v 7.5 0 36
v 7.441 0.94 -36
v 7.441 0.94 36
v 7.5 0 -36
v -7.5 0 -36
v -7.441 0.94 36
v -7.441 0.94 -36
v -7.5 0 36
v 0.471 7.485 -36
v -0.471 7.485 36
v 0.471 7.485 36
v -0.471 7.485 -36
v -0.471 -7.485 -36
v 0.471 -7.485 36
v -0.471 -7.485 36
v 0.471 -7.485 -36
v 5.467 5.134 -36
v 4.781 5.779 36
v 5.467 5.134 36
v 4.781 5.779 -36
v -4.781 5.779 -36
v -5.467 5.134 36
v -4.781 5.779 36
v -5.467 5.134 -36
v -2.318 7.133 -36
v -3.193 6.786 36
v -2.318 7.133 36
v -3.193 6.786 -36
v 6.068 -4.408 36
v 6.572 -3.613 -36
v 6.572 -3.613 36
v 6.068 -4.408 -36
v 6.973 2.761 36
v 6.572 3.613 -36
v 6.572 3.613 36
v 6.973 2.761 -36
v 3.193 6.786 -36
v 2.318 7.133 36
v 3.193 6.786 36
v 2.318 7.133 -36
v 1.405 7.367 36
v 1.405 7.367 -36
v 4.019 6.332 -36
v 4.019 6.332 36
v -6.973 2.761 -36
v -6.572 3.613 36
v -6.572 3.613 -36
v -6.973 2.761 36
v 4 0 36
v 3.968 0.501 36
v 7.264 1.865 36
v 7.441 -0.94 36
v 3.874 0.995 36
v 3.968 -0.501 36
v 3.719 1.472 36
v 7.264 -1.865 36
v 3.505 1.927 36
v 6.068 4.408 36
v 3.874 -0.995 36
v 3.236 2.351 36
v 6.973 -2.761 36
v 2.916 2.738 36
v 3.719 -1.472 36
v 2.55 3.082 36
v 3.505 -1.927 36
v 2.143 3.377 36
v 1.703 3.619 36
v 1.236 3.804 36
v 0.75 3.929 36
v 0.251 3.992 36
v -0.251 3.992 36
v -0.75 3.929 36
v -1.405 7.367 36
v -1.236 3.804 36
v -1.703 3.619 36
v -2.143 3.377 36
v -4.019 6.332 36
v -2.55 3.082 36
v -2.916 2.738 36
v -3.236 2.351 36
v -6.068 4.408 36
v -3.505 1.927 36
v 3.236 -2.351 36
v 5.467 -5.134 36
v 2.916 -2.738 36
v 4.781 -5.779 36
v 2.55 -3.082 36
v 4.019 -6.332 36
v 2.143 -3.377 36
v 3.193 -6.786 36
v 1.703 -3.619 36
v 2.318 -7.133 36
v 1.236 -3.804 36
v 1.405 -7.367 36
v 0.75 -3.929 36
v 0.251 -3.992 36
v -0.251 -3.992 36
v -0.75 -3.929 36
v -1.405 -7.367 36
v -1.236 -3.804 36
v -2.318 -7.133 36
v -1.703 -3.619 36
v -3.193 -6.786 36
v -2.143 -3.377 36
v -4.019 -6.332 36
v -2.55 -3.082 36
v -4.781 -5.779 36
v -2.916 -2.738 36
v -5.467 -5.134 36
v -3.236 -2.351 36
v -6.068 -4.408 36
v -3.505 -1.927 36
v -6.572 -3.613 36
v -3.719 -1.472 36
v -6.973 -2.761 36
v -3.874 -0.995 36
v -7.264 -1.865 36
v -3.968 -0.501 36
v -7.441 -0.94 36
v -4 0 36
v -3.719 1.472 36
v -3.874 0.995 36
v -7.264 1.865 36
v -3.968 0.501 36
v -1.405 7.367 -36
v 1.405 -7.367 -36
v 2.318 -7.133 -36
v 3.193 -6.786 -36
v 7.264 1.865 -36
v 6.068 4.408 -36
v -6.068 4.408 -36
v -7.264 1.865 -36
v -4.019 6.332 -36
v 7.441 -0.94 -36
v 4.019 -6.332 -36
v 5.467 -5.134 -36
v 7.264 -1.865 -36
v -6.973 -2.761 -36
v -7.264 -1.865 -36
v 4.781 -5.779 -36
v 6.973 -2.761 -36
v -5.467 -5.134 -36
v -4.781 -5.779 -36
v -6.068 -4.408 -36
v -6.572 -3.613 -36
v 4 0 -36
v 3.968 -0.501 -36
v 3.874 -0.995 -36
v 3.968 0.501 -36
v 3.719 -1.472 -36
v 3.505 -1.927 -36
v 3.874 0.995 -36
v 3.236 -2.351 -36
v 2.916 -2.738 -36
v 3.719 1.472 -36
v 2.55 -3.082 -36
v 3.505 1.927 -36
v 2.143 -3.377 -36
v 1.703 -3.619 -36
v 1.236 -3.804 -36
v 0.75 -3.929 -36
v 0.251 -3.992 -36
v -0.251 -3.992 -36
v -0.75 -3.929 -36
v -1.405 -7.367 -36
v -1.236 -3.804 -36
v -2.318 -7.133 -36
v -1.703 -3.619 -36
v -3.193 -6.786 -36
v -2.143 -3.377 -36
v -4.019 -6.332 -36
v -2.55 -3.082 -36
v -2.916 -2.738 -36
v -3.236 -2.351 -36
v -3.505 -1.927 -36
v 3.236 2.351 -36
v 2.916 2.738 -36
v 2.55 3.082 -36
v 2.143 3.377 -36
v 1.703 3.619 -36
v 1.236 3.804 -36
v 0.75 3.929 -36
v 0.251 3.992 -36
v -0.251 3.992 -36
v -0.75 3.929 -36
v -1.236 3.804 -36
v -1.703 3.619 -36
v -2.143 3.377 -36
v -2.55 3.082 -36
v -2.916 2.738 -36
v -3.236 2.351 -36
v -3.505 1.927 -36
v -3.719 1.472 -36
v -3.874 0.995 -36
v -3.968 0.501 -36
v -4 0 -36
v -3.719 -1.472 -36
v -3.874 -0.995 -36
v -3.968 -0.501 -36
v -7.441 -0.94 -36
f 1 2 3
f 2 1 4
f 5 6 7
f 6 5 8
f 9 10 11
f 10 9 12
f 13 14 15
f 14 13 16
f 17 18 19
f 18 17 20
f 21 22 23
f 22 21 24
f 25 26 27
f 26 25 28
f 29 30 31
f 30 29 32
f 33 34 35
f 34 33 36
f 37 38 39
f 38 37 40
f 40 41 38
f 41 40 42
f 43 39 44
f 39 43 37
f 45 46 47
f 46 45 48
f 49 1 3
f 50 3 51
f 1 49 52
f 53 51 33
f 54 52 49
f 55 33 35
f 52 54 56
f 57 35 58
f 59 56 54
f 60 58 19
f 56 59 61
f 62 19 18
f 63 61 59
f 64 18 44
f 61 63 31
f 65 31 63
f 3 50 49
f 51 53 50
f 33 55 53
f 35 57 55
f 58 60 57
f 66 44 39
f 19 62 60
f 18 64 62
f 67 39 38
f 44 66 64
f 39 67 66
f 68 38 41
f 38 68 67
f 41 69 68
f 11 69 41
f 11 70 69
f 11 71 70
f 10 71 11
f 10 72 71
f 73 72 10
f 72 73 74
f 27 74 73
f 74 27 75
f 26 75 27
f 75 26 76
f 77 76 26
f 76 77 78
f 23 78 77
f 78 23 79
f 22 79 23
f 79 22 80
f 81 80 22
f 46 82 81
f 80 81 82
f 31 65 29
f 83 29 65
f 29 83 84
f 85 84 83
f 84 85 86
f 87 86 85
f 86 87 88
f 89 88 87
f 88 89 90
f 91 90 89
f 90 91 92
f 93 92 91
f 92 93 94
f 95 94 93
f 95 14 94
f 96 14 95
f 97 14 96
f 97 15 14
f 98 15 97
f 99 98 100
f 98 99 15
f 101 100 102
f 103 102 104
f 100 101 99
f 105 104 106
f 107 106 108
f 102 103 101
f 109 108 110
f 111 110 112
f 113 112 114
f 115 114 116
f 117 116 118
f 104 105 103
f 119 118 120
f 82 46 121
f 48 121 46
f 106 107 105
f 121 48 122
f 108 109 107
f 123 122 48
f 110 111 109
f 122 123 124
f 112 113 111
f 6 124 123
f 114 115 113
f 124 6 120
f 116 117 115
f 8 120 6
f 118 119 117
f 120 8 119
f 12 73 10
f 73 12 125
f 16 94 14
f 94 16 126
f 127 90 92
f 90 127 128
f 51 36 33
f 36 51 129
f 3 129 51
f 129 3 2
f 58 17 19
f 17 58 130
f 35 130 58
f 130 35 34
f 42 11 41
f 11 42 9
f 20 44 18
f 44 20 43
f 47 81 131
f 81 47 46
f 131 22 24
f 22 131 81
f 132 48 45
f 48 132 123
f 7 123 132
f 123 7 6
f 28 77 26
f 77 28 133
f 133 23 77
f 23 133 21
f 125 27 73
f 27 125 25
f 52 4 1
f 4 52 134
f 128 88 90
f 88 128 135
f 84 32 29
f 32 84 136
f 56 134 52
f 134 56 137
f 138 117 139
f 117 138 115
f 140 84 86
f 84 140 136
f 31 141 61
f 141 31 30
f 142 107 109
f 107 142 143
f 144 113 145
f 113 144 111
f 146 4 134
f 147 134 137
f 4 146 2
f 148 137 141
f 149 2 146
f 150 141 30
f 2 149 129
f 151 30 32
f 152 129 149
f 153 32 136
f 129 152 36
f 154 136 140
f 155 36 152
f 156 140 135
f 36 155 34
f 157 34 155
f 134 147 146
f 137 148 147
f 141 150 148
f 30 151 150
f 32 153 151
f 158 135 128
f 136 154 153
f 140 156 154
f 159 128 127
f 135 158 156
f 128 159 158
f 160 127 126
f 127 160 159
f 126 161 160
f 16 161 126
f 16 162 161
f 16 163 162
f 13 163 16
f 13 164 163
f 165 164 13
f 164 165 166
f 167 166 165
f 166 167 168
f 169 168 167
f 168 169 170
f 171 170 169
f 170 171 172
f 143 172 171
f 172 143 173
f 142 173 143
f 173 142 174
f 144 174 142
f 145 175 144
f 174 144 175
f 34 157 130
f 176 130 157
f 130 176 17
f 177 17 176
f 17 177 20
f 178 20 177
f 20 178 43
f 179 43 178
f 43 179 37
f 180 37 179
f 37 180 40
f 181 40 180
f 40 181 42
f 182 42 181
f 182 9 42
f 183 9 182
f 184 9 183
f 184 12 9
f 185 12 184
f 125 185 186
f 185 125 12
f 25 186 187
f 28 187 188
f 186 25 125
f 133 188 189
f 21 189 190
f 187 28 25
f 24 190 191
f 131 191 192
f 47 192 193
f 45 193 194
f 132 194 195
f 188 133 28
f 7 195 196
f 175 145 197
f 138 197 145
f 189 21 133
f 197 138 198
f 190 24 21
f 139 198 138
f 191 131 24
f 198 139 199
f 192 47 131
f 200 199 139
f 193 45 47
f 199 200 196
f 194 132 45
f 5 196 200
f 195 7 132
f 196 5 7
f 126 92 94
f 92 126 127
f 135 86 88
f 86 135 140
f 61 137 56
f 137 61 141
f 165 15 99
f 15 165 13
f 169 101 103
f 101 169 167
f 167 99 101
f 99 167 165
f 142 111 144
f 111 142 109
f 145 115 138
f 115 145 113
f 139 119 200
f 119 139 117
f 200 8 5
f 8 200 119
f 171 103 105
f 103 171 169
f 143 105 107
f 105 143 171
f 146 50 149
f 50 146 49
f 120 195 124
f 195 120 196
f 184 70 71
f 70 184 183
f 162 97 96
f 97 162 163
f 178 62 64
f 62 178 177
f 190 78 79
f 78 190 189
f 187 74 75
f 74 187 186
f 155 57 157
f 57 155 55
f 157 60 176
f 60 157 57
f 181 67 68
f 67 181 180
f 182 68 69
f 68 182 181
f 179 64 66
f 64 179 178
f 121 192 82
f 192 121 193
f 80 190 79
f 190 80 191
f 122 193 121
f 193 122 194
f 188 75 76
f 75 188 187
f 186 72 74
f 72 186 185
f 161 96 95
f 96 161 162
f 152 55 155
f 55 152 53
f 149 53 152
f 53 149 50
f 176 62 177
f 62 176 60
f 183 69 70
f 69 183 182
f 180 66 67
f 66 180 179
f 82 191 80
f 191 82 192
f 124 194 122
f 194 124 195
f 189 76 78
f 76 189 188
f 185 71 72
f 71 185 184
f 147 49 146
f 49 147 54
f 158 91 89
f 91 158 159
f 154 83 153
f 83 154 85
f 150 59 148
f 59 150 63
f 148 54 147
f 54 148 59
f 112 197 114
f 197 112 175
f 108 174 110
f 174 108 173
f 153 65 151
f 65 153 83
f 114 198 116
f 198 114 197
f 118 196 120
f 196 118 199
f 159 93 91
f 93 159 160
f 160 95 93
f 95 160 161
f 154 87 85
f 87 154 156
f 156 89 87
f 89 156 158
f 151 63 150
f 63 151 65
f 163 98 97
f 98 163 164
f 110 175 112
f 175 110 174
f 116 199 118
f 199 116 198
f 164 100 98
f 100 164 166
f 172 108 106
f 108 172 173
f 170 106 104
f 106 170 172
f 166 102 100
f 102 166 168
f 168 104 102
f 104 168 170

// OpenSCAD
$fn = 50;


difference() {
	union() {
		translate(v = [0, 0, -36.0000000000]) {
			cylinder(h = 72, r = 7.5000000000);
		}
	}
	union() {
		translate(v = [0, 0, -100.0000000000]) {
			cylinder(h = 200, r = 4.0000000000);
		}
	}
}
